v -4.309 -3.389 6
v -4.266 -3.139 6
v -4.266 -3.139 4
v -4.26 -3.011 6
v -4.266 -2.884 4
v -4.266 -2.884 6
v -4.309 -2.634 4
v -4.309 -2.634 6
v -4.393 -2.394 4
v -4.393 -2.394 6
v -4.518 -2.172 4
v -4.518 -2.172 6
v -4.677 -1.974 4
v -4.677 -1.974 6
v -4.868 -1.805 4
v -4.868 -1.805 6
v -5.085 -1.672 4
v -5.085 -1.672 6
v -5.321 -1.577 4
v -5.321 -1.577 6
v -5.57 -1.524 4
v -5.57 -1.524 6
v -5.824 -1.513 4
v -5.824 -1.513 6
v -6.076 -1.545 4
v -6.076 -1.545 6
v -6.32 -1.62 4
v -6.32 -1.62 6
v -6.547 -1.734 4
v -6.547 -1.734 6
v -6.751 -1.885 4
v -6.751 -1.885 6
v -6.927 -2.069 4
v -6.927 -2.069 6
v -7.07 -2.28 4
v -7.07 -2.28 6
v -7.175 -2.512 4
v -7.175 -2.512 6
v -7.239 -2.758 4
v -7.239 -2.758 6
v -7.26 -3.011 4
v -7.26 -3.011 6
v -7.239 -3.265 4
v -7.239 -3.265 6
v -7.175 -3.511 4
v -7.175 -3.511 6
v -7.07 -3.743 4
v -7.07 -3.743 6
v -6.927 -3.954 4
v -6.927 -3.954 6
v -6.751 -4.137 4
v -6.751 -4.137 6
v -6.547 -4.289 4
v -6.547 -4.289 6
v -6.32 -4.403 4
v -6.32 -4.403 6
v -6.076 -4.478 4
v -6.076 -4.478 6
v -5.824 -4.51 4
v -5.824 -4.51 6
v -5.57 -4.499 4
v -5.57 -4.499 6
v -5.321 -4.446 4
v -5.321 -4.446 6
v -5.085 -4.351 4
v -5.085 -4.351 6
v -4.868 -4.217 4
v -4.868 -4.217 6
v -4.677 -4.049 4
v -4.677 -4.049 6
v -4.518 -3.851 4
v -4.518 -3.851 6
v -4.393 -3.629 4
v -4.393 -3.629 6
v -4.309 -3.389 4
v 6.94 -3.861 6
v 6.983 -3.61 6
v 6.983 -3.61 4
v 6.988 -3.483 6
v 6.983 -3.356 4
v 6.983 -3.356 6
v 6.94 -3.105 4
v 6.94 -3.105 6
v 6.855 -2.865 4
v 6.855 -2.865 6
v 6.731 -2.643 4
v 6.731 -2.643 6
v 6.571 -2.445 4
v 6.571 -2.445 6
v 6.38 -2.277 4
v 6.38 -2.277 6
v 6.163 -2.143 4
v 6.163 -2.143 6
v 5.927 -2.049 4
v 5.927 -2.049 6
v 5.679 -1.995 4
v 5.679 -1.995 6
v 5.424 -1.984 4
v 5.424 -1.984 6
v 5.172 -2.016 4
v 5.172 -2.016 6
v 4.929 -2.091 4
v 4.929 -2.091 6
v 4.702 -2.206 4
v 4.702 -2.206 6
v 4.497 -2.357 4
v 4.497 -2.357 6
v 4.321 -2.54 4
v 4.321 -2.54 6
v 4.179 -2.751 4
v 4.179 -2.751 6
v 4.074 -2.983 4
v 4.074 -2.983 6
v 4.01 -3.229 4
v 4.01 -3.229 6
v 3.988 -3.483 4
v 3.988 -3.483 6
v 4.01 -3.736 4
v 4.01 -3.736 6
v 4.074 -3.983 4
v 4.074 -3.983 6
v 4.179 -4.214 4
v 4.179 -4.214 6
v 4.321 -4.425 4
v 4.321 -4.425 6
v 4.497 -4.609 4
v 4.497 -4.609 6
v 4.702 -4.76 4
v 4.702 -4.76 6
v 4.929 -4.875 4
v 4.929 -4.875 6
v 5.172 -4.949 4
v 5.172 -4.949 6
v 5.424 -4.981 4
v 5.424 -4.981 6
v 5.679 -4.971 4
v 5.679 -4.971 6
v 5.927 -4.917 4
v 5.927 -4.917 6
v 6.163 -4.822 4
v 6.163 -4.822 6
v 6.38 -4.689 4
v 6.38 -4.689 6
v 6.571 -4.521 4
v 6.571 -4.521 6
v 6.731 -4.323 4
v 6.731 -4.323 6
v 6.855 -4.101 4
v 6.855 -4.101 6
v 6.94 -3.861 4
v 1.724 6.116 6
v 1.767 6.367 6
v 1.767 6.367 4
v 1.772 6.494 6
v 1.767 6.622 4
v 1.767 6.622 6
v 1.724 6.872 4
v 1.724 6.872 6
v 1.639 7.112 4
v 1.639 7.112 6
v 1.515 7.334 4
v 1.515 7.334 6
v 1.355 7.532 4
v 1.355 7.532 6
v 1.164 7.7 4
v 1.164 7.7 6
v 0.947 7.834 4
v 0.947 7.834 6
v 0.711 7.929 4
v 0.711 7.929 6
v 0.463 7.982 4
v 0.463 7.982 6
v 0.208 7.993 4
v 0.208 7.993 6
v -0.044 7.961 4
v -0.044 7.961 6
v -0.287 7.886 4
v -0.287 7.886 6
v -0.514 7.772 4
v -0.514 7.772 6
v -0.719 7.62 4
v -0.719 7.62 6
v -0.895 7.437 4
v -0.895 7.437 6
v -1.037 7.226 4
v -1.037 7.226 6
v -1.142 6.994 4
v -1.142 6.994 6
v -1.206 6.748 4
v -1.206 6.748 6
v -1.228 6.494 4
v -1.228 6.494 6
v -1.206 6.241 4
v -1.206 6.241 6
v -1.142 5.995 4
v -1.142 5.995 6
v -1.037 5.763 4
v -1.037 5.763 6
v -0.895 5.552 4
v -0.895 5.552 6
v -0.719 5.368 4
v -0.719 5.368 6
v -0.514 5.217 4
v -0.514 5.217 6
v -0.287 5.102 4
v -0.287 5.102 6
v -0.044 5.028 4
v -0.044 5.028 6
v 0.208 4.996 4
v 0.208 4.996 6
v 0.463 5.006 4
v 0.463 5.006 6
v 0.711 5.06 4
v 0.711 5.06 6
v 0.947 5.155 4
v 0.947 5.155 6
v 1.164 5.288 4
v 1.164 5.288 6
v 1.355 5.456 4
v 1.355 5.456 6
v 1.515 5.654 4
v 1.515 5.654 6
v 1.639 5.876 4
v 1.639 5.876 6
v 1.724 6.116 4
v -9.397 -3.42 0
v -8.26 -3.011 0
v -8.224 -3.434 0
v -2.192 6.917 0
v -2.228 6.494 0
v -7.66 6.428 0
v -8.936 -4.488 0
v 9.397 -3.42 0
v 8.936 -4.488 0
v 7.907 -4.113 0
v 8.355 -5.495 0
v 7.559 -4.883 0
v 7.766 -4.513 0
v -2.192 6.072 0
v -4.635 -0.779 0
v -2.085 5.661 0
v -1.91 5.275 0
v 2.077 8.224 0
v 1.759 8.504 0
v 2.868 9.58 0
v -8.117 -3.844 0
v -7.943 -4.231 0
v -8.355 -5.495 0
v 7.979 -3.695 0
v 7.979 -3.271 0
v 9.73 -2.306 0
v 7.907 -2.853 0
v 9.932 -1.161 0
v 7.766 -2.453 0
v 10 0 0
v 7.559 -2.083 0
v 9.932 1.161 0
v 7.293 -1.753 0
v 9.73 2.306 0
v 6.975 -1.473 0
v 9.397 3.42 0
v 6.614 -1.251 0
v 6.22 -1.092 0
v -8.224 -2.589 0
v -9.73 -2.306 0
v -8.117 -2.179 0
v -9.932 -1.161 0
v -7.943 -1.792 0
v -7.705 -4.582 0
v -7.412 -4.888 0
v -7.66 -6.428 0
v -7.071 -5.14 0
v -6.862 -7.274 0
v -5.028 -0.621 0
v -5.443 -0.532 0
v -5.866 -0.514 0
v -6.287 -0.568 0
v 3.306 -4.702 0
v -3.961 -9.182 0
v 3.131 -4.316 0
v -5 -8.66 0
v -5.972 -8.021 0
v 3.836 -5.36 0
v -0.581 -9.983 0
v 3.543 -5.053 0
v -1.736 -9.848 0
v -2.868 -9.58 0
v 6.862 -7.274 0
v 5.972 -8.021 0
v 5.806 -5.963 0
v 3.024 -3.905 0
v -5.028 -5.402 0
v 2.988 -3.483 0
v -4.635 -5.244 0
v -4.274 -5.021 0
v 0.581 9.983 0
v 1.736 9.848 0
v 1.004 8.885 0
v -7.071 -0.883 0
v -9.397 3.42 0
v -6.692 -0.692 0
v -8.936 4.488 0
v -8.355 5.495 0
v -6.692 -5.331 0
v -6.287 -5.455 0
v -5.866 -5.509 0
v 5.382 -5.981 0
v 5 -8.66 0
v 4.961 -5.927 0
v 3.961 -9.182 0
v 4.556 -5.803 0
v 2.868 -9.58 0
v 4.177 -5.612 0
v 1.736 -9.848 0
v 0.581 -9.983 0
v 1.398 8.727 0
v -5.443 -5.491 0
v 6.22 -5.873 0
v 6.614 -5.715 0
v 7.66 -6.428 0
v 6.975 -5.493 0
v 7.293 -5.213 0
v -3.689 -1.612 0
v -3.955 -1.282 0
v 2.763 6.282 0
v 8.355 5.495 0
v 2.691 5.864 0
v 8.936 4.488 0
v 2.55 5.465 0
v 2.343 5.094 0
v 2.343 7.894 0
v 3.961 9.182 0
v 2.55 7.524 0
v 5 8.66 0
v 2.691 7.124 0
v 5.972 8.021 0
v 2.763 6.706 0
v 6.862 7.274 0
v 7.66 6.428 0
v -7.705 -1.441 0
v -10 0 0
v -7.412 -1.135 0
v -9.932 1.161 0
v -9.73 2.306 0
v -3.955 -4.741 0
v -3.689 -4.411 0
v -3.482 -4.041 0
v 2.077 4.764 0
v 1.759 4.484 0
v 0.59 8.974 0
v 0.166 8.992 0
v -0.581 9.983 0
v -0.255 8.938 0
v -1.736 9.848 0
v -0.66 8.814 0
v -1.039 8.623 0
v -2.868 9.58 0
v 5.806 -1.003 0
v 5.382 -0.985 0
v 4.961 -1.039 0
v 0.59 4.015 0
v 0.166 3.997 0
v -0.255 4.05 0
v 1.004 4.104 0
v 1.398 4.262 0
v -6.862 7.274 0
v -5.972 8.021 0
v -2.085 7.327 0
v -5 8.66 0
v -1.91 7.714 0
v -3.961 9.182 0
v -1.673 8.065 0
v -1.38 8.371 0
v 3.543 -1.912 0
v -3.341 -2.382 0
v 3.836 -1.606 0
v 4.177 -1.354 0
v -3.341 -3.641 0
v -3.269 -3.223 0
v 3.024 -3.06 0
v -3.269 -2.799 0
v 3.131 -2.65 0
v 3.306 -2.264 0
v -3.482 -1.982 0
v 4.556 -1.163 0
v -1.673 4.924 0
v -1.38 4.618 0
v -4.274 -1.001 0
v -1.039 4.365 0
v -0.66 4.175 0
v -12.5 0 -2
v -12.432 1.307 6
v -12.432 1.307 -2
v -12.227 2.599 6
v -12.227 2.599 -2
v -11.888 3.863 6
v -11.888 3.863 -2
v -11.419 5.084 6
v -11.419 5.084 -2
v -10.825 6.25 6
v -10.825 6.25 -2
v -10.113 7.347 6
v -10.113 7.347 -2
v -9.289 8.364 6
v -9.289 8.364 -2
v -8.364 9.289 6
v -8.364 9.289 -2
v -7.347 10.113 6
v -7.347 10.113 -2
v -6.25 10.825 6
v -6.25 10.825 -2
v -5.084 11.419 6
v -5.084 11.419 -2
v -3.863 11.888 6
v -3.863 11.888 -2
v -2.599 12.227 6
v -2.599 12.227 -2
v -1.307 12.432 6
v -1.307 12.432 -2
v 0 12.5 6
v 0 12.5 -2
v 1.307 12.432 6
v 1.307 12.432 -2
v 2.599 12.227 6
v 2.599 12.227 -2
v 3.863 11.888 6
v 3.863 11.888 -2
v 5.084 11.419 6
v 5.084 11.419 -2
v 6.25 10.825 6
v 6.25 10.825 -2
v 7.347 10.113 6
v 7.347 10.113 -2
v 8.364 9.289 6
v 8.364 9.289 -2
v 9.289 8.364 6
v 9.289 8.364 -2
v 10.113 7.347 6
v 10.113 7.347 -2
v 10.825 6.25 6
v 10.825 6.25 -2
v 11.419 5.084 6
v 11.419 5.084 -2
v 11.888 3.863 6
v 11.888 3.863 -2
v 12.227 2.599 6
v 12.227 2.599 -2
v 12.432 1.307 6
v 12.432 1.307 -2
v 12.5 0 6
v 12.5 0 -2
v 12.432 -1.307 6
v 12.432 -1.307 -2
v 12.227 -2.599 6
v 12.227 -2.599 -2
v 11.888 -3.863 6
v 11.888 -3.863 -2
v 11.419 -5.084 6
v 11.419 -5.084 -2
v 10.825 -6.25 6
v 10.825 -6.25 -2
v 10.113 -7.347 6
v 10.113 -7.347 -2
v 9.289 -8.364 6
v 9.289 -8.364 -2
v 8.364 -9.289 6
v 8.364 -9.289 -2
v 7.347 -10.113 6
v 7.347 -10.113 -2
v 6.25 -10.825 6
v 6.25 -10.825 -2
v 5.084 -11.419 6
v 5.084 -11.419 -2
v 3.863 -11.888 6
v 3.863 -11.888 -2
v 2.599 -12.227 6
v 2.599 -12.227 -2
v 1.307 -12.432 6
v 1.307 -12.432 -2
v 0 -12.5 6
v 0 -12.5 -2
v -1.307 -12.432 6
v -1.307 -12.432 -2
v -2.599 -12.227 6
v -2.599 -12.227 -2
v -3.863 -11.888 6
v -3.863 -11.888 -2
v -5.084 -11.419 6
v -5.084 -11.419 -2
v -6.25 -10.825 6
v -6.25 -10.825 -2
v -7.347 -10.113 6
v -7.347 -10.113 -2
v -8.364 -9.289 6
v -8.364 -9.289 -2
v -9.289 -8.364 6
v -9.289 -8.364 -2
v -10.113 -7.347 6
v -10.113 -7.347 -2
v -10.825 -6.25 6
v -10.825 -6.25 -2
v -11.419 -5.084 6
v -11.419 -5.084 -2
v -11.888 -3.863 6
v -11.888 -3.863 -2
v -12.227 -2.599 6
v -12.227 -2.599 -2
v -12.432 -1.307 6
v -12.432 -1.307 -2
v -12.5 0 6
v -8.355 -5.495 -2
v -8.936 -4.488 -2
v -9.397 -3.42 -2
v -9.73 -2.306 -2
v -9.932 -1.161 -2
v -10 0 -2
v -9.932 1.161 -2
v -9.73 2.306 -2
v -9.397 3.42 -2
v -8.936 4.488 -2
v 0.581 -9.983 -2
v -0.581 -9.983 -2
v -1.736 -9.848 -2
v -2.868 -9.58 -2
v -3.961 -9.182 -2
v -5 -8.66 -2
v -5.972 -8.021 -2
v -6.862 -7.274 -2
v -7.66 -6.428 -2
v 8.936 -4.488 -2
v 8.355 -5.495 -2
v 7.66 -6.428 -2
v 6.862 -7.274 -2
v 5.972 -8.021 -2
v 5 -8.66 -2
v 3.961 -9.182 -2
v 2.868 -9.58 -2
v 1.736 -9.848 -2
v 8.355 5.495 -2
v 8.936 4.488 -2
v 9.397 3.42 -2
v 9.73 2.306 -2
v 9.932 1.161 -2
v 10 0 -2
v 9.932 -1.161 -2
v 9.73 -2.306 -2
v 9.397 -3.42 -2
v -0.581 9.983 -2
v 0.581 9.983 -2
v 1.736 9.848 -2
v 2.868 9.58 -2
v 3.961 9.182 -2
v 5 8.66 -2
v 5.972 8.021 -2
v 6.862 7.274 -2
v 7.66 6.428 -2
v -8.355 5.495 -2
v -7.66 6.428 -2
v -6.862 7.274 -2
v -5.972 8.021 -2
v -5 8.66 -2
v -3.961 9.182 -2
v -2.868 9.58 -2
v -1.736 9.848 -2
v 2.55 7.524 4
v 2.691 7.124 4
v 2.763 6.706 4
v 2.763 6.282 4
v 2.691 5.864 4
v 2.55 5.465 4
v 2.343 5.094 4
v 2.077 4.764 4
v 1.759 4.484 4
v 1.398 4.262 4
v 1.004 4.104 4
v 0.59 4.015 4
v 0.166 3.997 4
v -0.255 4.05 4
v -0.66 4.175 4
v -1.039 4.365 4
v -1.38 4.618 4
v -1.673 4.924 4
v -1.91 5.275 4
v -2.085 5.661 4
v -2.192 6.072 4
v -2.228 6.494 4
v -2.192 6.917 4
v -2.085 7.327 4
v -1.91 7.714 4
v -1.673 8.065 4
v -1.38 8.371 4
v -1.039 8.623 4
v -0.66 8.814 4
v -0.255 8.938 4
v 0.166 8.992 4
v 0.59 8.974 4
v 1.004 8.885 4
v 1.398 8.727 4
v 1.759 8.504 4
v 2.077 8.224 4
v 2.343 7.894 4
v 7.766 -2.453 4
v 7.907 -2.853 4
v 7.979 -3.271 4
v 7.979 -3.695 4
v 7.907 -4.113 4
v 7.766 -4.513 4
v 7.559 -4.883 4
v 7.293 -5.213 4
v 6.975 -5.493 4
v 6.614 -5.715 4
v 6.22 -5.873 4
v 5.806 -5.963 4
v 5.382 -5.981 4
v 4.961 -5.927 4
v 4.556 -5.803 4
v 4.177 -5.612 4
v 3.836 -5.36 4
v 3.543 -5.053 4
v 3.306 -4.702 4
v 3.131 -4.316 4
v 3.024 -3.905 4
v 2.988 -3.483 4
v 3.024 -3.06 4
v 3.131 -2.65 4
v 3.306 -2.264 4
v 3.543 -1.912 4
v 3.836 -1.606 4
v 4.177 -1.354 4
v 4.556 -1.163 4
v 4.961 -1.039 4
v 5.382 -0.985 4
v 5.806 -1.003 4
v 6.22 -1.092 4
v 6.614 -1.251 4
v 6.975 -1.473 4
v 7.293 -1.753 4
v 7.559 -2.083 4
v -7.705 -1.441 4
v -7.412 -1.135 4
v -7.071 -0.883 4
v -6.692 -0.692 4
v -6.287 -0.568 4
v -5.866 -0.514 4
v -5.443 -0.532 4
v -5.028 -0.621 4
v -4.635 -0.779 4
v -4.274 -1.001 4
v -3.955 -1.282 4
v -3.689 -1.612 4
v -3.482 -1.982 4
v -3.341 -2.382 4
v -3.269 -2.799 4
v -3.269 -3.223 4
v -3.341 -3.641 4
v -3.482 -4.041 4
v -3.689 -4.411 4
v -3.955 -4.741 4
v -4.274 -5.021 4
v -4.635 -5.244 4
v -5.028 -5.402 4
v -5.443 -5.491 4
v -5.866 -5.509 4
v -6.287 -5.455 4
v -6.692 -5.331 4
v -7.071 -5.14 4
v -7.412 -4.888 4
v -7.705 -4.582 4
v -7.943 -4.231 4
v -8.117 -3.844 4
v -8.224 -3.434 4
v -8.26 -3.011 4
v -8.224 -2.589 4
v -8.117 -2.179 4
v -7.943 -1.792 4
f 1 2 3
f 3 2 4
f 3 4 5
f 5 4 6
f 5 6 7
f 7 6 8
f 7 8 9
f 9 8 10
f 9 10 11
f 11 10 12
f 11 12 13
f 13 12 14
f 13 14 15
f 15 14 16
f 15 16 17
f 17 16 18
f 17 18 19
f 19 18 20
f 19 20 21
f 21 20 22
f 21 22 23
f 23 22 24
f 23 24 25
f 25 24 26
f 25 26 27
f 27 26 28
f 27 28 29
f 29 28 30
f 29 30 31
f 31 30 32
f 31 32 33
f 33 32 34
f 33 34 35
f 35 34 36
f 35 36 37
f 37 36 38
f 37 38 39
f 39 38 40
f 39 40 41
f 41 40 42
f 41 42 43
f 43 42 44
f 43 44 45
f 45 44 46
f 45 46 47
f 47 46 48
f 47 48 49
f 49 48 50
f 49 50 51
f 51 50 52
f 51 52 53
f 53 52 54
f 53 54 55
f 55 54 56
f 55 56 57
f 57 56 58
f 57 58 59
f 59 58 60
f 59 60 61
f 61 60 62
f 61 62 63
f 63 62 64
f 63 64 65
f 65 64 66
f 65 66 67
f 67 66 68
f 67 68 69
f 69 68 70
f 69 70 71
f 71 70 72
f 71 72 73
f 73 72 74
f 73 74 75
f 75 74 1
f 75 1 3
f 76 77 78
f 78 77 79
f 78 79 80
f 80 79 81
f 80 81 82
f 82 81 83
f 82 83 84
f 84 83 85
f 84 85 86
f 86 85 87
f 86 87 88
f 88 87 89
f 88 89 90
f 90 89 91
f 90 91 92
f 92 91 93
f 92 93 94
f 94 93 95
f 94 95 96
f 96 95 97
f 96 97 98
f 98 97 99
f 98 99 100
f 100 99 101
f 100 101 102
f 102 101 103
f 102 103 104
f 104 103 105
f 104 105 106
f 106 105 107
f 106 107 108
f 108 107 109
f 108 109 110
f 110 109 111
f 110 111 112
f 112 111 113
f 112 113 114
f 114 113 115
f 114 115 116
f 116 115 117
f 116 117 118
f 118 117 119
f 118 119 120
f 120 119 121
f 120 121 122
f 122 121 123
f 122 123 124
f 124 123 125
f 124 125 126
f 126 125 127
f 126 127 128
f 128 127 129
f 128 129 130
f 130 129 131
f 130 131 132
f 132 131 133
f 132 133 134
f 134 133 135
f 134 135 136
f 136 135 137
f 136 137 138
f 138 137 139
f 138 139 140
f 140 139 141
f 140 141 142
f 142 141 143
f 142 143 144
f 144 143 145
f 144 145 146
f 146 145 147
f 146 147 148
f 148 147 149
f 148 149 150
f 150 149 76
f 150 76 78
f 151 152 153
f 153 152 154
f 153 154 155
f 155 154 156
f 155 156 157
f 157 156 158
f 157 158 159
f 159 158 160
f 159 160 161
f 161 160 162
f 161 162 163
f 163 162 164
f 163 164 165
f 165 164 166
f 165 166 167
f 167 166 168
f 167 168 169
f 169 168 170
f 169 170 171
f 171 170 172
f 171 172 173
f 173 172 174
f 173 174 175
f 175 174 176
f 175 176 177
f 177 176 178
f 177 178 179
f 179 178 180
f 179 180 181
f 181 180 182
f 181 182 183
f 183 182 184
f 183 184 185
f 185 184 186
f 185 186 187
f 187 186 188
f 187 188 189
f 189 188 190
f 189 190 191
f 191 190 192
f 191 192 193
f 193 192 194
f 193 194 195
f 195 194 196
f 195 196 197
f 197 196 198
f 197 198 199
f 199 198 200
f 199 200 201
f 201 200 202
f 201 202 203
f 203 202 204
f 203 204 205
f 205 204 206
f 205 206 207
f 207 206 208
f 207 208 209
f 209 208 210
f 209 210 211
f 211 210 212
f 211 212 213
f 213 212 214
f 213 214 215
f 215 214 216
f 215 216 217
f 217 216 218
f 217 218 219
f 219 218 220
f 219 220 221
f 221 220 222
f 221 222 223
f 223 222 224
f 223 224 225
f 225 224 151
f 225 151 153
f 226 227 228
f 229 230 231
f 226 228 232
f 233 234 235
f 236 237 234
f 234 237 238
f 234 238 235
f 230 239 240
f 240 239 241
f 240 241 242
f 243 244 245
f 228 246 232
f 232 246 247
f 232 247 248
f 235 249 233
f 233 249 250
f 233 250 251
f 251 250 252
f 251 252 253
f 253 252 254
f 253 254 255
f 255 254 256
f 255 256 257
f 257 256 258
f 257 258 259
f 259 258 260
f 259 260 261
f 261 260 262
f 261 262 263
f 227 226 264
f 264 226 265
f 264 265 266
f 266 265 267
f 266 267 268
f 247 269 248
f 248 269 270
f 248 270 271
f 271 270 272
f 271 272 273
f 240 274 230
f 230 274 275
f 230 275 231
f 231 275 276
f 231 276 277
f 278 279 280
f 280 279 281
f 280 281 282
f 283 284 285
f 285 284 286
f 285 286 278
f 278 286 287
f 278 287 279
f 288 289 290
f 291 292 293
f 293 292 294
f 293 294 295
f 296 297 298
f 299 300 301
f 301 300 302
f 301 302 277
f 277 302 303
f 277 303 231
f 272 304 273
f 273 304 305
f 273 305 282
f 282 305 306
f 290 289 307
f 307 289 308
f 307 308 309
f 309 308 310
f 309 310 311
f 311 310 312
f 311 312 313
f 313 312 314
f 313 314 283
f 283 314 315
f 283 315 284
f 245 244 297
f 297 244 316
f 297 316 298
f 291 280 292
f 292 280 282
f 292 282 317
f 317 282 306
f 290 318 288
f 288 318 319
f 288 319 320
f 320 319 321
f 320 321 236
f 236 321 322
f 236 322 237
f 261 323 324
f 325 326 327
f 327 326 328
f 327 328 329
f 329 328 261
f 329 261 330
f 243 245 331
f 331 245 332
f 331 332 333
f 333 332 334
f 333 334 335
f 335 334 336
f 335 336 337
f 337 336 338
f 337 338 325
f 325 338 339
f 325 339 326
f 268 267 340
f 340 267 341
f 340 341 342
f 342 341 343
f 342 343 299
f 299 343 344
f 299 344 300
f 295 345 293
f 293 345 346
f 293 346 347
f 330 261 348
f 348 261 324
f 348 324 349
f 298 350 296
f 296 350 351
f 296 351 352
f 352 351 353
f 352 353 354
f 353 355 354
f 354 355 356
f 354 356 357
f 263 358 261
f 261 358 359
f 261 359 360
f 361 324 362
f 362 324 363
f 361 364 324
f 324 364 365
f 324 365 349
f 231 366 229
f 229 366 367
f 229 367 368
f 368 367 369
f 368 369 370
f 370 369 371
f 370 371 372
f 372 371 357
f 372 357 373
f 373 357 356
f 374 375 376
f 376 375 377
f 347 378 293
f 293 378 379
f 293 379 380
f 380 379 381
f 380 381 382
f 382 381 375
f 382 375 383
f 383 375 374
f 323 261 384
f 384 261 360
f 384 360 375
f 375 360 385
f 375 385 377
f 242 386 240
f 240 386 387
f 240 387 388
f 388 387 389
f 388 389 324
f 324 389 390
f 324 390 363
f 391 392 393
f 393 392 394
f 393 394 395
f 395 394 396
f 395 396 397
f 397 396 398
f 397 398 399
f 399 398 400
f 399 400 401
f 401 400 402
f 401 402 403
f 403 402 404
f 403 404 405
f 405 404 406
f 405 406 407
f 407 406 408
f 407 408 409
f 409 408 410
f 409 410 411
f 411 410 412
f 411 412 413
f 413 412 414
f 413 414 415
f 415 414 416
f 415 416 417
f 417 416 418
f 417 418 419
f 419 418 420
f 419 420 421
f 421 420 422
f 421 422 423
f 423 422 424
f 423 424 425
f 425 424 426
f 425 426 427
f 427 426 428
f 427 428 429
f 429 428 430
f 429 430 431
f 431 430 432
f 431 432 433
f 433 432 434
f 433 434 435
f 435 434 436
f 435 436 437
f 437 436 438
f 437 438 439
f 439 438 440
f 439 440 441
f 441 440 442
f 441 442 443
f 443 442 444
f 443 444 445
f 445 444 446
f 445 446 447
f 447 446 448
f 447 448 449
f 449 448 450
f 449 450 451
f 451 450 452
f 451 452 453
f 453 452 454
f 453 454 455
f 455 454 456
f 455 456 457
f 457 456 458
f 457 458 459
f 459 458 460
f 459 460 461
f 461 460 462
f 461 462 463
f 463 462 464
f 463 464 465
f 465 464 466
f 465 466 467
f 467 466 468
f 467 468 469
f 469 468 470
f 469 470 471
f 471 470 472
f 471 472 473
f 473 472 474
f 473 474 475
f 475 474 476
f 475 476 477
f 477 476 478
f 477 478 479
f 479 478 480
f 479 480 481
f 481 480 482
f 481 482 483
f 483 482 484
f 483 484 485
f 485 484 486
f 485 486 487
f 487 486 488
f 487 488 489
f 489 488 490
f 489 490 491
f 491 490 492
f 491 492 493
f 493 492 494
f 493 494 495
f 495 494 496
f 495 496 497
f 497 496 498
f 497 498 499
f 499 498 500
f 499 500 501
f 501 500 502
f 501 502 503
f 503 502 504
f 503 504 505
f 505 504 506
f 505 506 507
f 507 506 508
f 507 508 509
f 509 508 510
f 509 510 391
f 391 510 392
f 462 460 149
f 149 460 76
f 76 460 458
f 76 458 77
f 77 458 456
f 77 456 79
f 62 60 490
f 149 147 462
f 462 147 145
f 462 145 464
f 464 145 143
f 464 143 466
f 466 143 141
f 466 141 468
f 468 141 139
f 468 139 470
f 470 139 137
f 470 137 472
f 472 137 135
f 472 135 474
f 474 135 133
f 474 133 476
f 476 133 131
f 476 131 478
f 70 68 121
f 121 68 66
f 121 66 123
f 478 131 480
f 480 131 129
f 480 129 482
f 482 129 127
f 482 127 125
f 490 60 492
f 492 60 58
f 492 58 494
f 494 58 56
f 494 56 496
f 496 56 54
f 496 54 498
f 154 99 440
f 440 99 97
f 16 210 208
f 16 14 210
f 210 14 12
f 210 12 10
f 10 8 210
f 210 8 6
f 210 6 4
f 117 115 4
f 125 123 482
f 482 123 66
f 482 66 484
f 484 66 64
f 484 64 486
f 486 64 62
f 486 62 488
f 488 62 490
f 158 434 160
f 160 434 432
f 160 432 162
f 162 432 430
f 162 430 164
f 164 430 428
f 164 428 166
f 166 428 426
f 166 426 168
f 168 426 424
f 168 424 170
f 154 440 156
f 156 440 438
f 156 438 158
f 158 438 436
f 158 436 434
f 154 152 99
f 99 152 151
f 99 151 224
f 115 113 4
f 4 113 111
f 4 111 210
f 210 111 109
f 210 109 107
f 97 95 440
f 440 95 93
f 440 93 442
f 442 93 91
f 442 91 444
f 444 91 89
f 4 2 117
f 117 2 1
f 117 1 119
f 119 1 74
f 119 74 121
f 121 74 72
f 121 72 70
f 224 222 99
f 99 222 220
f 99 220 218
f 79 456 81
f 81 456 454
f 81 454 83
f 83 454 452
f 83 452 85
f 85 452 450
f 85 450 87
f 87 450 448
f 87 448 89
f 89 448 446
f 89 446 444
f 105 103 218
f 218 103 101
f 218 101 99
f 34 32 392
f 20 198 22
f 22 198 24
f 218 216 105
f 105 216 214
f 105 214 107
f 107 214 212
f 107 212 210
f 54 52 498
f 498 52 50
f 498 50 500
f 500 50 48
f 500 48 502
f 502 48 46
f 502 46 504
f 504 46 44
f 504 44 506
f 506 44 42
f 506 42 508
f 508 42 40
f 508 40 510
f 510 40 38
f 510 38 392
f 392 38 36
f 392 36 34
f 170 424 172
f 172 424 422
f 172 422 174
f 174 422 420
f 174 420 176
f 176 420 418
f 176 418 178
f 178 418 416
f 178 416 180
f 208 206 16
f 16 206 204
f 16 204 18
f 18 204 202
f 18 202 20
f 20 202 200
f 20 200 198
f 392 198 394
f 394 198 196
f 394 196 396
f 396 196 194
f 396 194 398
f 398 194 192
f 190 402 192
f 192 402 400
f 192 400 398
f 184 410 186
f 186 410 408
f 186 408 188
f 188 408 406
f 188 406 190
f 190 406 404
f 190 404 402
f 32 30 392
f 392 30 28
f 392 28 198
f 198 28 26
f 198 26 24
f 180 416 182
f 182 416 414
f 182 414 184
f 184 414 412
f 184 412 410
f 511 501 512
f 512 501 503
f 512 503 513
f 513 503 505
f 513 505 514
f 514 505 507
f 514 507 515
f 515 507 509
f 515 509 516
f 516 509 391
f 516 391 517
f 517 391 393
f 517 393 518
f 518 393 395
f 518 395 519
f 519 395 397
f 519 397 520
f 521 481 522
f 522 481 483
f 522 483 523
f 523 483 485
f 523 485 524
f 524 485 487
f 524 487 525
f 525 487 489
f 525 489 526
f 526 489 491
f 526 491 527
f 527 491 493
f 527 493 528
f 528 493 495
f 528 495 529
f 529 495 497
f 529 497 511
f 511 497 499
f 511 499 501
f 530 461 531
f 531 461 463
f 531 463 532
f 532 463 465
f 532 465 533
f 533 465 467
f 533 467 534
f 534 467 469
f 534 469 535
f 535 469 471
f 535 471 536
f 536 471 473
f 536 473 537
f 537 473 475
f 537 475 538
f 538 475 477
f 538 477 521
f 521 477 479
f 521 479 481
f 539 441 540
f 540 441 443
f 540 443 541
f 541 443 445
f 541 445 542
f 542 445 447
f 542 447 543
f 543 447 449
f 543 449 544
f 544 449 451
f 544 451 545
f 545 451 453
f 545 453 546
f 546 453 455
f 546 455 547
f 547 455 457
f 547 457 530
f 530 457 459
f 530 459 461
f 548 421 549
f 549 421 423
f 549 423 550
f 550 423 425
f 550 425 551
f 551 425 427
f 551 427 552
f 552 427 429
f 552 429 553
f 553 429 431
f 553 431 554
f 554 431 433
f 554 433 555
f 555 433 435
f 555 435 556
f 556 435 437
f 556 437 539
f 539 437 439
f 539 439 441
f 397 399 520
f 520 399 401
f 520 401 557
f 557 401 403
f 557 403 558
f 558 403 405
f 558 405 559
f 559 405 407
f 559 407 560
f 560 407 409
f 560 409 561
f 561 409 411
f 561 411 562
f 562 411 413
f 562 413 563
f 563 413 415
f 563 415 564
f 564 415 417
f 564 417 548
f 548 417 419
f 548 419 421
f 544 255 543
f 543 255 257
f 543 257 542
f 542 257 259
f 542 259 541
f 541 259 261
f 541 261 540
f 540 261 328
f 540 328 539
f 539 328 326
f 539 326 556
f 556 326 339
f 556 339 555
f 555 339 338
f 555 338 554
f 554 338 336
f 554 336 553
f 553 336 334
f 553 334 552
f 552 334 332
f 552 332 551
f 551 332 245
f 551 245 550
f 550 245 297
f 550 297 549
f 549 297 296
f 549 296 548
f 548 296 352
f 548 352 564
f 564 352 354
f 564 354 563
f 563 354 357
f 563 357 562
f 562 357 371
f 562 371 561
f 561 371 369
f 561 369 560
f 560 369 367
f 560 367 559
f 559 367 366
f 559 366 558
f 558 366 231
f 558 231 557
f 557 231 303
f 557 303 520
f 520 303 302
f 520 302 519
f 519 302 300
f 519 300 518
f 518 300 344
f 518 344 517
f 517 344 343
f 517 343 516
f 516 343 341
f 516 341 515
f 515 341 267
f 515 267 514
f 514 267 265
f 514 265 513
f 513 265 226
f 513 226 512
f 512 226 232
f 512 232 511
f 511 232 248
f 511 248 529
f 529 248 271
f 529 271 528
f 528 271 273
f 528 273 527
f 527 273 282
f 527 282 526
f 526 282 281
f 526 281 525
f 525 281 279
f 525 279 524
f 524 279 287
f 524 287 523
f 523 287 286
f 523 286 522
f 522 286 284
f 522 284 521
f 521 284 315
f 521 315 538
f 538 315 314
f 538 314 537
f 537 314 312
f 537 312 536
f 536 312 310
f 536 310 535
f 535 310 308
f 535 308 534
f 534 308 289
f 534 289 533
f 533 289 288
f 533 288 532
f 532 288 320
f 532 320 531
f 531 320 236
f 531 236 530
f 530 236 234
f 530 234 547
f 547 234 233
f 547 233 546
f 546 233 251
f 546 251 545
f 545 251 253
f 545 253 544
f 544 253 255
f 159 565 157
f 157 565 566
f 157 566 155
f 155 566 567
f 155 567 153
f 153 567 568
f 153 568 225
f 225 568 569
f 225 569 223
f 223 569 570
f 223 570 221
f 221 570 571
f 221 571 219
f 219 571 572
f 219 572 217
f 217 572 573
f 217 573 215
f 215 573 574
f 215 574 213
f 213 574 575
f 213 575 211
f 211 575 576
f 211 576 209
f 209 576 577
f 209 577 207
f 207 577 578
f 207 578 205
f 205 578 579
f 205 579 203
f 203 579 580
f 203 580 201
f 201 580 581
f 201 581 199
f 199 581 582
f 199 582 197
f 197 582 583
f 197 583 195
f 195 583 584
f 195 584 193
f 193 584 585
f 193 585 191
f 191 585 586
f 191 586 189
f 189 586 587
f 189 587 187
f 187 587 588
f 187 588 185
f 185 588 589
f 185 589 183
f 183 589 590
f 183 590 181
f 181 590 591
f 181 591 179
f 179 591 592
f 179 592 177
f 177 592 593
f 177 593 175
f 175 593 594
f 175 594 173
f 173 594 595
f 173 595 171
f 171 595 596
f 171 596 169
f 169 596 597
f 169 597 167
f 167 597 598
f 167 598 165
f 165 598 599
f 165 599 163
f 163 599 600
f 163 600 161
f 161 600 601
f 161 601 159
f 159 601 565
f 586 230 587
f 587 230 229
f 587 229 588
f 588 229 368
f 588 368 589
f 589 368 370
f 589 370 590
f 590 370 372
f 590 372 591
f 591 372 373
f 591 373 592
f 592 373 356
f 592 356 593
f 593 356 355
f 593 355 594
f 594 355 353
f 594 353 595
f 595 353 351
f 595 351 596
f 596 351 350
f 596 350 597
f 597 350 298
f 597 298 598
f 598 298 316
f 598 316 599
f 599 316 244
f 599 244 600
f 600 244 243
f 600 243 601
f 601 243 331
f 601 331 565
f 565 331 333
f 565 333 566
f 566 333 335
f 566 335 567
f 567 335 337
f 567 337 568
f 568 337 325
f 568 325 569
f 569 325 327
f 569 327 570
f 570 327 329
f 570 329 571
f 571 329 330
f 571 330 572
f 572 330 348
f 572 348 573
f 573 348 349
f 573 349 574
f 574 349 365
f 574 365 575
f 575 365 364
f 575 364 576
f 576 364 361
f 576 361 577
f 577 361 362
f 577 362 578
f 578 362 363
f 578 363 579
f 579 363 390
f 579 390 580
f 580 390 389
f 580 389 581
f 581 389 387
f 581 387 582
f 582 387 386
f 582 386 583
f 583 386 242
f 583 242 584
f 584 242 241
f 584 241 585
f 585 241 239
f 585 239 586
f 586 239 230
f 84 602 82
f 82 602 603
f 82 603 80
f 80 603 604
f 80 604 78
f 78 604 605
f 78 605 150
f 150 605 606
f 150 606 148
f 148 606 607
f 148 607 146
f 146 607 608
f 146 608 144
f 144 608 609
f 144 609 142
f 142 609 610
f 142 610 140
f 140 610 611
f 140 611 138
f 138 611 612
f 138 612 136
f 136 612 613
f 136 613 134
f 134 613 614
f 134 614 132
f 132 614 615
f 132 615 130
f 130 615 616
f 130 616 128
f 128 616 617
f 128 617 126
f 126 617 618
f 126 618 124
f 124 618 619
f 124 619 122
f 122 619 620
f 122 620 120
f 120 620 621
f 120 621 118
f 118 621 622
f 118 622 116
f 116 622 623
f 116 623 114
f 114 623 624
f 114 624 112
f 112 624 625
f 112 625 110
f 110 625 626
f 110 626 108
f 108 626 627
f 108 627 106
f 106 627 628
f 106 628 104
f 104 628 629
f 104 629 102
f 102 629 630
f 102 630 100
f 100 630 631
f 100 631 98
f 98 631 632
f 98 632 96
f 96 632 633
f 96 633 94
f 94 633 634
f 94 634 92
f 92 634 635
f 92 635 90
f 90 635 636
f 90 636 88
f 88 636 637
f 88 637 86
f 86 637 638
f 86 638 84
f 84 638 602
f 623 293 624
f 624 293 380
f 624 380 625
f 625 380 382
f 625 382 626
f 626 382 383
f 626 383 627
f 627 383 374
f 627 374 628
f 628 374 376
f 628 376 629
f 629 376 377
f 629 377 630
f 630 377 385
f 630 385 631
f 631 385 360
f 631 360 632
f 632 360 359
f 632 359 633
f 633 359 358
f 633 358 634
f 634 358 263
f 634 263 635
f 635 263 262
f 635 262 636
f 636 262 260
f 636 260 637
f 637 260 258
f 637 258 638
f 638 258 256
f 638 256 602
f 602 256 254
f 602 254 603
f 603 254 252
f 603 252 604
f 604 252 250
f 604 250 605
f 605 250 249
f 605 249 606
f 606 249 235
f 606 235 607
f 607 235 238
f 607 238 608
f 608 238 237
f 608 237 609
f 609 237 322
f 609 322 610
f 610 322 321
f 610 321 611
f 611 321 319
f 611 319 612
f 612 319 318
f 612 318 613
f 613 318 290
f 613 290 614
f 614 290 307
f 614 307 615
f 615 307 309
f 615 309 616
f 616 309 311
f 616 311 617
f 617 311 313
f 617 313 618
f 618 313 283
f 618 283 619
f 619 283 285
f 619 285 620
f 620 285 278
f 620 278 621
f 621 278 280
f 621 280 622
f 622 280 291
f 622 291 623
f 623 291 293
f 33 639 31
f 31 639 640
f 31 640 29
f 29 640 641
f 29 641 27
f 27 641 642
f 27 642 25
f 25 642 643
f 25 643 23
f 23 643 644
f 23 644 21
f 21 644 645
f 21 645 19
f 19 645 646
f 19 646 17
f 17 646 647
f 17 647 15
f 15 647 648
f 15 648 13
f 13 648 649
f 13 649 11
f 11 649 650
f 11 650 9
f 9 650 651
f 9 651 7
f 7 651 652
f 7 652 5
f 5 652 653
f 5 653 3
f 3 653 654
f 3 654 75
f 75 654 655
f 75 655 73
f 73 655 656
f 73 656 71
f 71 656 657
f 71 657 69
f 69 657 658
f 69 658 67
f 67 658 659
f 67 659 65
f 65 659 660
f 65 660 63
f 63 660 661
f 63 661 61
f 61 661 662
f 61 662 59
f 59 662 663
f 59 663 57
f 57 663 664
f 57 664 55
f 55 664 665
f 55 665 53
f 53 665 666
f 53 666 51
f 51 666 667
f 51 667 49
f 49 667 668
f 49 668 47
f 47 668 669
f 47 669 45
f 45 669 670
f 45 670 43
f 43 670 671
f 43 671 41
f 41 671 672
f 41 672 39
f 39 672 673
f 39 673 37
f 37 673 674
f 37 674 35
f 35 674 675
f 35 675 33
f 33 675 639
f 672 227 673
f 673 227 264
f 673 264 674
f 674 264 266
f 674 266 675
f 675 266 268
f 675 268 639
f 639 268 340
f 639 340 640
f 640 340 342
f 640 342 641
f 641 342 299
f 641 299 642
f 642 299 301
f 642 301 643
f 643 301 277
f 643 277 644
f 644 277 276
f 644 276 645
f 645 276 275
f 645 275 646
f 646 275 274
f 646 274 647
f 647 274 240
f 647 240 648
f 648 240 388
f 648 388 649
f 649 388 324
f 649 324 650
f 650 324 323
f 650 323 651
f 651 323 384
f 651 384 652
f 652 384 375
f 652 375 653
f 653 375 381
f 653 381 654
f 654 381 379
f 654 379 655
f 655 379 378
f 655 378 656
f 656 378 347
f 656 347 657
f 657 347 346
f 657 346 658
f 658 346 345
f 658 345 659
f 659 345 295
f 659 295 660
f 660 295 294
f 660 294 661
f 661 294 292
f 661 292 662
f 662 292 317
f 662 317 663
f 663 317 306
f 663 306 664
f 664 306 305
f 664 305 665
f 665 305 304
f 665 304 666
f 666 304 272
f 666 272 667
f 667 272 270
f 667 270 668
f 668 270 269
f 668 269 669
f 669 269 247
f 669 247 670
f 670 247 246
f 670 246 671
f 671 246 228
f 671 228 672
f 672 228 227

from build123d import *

# Parameters (mm, degrees)
SKETCH2_R           = 12.5
BOSS_EXTRUDE1_DEPTH = 6
SKETCH6_R           = 1.5
CUT_EXTRUDE1_DEPTH  = 15
SKETCH8_R           = 12.5
SKETCH8_R_2         = 10
BOSS_EXTRUDE2_DEPTH = 2
SKETCH9_R           = 2.5
CUT_EXTRUDE3_DEPTH  = 4


with BuildPart() as part:
    # Sketch2 → Boss-Extrude1 (new body)
    with BuildSketch(Plane.XY):
        Circle(SKETCH2_R)
    extrude(amount=BOSS_EXTRUDE1_DEPTH)

    # Sketch6 → Cut-Extrude1 (cut)
    with BuildSketch(Plane(origin=(0, 0, 0), x_dir=(-1, 0, 0), z_dir=(0, 0, -1))):
        with Locations((-5.488160471, -3.482828541)):
            Circle(SKETCH6_R)
        with Locations((-0.272137758, 6.494300658)):
            Circle(SKETCH6_R)
        with Locations((5.760298229, -3.011472117)):
            Circle(SKETCH6_R)
    extrude(amount=-CUT_EXTRUDE1_DEPTH, mode=Mode.SUBTRACT)

    # Sketch8 → Boss-Extrude2 (add)
    with BuildSketch(Plane(origin=(0, 0, 0), x_dir=(-1, 0, 0), z_dir=(0, 0, -1))):
        Circle(SKETCH8_R)
        Circle(SKETCH8_R_2, mode=Mode.SUBTRACT)
    extrude(amount=BOSS_EXTRUDE2_DEPTH)

    # Sketch9 → Cut-Extrude3 (cut)
    with BuildSketch(Plane(origin=(0, 0, 0), x_dir=(-1, 0, 0), z_dir=(0, 0, -1))):
        with Locations((-0.272137758, 6.494300658)):
            Circle(SKETCH9_R)
        with Locations((5.760298229, -3.011472117)):
            Circle(SKETCH9_R)
        with Locations((-5.488160471, -3.482828541)):
            Circle(SKETCH9_R)
    extrude(amount=-CUT_EXTRUDE3_DEPTH, mode=Mode.SUBTRACT)


solid = part.part
